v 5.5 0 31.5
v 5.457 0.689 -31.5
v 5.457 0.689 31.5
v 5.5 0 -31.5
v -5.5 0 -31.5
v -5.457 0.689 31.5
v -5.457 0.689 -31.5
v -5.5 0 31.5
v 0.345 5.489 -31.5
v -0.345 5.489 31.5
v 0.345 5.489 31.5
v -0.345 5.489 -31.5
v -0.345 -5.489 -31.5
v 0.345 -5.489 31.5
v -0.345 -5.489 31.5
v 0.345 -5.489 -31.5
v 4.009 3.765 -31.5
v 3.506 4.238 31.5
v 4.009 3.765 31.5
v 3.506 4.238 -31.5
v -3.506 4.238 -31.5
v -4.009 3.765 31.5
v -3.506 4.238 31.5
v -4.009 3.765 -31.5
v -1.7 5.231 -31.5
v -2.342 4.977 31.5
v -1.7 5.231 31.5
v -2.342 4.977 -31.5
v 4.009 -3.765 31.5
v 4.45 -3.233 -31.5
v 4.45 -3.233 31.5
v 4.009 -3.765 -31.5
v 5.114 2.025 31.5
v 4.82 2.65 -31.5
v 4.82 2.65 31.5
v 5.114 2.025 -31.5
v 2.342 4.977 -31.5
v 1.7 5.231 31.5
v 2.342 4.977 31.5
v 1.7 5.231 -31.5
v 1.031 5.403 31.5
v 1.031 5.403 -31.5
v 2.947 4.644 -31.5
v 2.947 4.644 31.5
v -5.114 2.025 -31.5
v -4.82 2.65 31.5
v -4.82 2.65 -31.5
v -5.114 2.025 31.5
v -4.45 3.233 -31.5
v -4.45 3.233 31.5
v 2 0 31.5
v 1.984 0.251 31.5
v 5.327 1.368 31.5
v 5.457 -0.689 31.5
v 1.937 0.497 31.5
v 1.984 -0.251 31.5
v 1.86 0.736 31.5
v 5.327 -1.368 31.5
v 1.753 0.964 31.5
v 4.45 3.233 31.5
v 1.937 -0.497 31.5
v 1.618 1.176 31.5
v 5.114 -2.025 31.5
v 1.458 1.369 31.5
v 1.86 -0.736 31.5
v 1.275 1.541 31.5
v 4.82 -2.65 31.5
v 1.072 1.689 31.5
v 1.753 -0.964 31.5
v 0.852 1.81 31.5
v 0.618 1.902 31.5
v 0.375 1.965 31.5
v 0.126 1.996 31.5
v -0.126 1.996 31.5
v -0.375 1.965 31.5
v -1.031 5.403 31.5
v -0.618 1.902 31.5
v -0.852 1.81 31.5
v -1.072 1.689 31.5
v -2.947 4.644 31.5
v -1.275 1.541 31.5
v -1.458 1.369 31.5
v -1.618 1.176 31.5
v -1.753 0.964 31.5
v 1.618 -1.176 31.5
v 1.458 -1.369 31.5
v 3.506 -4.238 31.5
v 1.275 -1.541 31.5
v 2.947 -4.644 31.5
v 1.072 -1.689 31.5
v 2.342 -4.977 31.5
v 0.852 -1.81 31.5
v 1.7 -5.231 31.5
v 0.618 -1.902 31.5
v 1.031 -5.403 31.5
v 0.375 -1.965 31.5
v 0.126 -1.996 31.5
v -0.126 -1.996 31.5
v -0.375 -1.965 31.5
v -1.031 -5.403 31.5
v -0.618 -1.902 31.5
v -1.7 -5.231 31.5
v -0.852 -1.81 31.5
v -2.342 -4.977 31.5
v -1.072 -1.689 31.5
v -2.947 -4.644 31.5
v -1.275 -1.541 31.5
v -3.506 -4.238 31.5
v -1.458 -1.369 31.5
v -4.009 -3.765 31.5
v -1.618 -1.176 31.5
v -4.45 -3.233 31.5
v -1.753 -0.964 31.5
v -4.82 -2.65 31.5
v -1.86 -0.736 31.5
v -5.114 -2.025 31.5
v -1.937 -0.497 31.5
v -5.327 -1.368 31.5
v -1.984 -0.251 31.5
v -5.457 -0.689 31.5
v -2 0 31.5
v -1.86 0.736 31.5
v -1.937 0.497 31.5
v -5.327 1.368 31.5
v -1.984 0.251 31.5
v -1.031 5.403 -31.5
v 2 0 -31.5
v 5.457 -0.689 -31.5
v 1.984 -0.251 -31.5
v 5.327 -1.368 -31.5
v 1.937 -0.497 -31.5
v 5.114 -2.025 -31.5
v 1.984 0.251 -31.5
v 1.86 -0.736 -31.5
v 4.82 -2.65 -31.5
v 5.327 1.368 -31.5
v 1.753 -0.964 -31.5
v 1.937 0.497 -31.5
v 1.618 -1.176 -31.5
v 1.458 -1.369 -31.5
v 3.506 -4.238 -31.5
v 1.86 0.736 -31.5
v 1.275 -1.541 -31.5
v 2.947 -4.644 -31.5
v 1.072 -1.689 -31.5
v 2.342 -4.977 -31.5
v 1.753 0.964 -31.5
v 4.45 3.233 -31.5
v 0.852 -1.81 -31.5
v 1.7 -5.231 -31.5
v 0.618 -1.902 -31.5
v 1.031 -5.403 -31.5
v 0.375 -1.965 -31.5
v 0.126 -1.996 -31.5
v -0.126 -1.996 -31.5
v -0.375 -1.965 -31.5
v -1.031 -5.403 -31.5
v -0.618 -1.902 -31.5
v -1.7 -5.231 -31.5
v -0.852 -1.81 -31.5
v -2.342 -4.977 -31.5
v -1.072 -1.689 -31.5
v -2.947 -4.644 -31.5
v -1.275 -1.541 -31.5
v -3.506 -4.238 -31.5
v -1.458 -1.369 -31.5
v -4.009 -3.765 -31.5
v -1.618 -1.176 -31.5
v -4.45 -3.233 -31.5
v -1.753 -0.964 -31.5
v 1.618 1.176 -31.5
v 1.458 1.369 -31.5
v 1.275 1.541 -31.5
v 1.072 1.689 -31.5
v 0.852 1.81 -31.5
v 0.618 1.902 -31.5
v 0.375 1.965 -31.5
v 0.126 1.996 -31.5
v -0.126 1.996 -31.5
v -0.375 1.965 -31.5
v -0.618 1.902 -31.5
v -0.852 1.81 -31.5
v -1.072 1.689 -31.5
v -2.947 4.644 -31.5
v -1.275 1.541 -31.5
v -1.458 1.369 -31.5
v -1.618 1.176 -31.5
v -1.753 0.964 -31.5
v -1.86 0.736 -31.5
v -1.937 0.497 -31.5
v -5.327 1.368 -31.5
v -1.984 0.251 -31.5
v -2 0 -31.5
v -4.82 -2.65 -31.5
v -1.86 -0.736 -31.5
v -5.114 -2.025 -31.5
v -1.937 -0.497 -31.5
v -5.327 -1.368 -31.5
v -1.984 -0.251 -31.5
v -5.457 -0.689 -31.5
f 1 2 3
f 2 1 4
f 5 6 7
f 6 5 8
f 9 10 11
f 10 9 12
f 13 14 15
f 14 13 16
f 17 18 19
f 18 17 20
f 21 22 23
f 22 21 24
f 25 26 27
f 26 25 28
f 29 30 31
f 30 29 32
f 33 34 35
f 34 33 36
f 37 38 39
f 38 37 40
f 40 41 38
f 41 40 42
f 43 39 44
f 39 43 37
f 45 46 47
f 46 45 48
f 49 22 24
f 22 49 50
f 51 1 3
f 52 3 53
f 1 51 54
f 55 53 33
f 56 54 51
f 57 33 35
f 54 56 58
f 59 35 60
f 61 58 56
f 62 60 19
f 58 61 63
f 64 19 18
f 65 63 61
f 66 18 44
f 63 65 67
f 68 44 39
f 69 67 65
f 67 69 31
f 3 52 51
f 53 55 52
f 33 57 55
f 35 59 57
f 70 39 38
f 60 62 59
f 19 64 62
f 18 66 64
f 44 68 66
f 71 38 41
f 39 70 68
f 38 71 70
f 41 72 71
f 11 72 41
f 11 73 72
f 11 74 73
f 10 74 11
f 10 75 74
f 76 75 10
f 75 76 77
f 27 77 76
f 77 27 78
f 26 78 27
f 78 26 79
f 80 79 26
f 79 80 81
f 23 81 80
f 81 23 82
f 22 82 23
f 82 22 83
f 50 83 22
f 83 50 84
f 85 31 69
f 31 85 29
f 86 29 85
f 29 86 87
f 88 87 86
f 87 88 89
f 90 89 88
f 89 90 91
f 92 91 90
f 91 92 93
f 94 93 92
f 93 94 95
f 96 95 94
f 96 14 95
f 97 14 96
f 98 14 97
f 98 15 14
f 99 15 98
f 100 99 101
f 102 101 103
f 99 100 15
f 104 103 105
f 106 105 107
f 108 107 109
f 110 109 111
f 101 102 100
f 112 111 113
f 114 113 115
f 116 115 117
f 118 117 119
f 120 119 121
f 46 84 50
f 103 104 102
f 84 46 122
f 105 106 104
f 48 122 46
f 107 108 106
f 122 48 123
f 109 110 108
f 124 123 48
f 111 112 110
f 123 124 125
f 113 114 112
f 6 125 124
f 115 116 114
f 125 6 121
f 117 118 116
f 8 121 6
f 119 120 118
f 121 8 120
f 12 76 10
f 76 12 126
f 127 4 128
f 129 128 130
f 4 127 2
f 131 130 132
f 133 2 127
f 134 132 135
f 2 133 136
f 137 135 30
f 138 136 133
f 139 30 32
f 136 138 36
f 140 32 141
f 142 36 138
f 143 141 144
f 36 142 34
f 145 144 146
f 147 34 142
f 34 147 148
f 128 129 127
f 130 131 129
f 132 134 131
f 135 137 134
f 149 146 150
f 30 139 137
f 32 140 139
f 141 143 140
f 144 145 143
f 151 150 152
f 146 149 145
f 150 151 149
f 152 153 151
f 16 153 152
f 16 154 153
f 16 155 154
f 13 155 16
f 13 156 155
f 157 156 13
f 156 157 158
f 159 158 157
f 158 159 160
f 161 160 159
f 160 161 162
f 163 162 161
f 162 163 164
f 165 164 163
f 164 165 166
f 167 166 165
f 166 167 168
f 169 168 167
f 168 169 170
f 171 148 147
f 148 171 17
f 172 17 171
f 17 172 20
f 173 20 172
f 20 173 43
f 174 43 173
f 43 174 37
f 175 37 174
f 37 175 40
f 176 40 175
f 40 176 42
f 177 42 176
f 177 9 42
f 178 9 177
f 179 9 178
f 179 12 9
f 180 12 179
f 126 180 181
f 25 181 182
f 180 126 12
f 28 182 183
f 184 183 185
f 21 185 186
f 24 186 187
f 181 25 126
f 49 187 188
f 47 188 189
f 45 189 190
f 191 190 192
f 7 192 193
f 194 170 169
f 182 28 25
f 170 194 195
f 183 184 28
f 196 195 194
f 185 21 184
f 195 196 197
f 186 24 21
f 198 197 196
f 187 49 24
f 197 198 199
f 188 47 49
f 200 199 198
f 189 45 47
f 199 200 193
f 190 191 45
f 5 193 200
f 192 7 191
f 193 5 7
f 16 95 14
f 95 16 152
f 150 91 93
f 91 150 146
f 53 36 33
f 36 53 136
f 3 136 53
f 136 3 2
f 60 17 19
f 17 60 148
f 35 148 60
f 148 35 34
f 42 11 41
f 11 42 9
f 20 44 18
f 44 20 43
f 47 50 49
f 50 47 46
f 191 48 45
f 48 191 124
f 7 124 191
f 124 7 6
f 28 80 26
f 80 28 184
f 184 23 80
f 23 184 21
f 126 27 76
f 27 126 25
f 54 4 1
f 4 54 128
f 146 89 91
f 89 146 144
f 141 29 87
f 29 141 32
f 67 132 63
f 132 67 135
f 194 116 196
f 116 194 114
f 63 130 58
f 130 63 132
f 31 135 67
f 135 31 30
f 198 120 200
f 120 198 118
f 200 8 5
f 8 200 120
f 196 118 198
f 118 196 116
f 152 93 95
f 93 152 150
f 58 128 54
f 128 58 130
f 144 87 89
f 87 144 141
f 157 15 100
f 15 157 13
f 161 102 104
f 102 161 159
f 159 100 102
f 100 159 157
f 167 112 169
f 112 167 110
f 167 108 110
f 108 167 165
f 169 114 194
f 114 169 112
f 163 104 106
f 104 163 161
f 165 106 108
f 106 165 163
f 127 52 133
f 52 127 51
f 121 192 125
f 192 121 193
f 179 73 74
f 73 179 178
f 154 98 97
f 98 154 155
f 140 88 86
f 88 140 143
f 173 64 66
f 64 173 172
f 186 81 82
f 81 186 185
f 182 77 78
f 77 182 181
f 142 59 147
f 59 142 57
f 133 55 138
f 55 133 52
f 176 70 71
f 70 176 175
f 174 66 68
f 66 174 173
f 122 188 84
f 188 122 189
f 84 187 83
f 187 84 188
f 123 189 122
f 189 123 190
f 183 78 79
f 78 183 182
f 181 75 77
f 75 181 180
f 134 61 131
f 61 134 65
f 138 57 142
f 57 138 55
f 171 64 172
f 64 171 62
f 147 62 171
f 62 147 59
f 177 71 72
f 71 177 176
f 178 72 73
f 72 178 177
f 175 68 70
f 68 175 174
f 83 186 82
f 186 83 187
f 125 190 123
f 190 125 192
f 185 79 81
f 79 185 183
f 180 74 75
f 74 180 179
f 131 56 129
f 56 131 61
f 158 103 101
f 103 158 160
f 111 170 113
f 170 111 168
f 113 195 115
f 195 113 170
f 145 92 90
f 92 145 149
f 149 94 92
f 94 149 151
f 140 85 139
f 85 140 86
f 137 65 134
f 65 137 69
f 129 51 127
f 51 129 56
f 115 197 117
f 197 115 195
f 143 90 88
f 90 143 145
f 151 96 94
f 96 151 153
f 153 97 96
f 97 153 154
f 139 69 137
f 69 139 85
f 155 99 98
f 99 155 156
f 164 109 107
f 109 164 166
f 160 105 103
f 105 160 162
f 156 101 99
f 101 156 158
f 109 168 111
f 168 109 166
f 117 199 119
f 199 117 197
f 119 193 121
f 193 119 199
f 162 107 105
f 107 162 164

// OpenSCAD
$fn = 50;


difference() {
	union() {
		translate(v = [0, 0, -31.5000000000]) {
			cylinder(h = 63, r = 5.5000000000);
		}
	}
	union() {
		translate(v = [0, 0, -100.0000000000]) {
			cylinder(h = 200, r = 2);
		}
	}
}
